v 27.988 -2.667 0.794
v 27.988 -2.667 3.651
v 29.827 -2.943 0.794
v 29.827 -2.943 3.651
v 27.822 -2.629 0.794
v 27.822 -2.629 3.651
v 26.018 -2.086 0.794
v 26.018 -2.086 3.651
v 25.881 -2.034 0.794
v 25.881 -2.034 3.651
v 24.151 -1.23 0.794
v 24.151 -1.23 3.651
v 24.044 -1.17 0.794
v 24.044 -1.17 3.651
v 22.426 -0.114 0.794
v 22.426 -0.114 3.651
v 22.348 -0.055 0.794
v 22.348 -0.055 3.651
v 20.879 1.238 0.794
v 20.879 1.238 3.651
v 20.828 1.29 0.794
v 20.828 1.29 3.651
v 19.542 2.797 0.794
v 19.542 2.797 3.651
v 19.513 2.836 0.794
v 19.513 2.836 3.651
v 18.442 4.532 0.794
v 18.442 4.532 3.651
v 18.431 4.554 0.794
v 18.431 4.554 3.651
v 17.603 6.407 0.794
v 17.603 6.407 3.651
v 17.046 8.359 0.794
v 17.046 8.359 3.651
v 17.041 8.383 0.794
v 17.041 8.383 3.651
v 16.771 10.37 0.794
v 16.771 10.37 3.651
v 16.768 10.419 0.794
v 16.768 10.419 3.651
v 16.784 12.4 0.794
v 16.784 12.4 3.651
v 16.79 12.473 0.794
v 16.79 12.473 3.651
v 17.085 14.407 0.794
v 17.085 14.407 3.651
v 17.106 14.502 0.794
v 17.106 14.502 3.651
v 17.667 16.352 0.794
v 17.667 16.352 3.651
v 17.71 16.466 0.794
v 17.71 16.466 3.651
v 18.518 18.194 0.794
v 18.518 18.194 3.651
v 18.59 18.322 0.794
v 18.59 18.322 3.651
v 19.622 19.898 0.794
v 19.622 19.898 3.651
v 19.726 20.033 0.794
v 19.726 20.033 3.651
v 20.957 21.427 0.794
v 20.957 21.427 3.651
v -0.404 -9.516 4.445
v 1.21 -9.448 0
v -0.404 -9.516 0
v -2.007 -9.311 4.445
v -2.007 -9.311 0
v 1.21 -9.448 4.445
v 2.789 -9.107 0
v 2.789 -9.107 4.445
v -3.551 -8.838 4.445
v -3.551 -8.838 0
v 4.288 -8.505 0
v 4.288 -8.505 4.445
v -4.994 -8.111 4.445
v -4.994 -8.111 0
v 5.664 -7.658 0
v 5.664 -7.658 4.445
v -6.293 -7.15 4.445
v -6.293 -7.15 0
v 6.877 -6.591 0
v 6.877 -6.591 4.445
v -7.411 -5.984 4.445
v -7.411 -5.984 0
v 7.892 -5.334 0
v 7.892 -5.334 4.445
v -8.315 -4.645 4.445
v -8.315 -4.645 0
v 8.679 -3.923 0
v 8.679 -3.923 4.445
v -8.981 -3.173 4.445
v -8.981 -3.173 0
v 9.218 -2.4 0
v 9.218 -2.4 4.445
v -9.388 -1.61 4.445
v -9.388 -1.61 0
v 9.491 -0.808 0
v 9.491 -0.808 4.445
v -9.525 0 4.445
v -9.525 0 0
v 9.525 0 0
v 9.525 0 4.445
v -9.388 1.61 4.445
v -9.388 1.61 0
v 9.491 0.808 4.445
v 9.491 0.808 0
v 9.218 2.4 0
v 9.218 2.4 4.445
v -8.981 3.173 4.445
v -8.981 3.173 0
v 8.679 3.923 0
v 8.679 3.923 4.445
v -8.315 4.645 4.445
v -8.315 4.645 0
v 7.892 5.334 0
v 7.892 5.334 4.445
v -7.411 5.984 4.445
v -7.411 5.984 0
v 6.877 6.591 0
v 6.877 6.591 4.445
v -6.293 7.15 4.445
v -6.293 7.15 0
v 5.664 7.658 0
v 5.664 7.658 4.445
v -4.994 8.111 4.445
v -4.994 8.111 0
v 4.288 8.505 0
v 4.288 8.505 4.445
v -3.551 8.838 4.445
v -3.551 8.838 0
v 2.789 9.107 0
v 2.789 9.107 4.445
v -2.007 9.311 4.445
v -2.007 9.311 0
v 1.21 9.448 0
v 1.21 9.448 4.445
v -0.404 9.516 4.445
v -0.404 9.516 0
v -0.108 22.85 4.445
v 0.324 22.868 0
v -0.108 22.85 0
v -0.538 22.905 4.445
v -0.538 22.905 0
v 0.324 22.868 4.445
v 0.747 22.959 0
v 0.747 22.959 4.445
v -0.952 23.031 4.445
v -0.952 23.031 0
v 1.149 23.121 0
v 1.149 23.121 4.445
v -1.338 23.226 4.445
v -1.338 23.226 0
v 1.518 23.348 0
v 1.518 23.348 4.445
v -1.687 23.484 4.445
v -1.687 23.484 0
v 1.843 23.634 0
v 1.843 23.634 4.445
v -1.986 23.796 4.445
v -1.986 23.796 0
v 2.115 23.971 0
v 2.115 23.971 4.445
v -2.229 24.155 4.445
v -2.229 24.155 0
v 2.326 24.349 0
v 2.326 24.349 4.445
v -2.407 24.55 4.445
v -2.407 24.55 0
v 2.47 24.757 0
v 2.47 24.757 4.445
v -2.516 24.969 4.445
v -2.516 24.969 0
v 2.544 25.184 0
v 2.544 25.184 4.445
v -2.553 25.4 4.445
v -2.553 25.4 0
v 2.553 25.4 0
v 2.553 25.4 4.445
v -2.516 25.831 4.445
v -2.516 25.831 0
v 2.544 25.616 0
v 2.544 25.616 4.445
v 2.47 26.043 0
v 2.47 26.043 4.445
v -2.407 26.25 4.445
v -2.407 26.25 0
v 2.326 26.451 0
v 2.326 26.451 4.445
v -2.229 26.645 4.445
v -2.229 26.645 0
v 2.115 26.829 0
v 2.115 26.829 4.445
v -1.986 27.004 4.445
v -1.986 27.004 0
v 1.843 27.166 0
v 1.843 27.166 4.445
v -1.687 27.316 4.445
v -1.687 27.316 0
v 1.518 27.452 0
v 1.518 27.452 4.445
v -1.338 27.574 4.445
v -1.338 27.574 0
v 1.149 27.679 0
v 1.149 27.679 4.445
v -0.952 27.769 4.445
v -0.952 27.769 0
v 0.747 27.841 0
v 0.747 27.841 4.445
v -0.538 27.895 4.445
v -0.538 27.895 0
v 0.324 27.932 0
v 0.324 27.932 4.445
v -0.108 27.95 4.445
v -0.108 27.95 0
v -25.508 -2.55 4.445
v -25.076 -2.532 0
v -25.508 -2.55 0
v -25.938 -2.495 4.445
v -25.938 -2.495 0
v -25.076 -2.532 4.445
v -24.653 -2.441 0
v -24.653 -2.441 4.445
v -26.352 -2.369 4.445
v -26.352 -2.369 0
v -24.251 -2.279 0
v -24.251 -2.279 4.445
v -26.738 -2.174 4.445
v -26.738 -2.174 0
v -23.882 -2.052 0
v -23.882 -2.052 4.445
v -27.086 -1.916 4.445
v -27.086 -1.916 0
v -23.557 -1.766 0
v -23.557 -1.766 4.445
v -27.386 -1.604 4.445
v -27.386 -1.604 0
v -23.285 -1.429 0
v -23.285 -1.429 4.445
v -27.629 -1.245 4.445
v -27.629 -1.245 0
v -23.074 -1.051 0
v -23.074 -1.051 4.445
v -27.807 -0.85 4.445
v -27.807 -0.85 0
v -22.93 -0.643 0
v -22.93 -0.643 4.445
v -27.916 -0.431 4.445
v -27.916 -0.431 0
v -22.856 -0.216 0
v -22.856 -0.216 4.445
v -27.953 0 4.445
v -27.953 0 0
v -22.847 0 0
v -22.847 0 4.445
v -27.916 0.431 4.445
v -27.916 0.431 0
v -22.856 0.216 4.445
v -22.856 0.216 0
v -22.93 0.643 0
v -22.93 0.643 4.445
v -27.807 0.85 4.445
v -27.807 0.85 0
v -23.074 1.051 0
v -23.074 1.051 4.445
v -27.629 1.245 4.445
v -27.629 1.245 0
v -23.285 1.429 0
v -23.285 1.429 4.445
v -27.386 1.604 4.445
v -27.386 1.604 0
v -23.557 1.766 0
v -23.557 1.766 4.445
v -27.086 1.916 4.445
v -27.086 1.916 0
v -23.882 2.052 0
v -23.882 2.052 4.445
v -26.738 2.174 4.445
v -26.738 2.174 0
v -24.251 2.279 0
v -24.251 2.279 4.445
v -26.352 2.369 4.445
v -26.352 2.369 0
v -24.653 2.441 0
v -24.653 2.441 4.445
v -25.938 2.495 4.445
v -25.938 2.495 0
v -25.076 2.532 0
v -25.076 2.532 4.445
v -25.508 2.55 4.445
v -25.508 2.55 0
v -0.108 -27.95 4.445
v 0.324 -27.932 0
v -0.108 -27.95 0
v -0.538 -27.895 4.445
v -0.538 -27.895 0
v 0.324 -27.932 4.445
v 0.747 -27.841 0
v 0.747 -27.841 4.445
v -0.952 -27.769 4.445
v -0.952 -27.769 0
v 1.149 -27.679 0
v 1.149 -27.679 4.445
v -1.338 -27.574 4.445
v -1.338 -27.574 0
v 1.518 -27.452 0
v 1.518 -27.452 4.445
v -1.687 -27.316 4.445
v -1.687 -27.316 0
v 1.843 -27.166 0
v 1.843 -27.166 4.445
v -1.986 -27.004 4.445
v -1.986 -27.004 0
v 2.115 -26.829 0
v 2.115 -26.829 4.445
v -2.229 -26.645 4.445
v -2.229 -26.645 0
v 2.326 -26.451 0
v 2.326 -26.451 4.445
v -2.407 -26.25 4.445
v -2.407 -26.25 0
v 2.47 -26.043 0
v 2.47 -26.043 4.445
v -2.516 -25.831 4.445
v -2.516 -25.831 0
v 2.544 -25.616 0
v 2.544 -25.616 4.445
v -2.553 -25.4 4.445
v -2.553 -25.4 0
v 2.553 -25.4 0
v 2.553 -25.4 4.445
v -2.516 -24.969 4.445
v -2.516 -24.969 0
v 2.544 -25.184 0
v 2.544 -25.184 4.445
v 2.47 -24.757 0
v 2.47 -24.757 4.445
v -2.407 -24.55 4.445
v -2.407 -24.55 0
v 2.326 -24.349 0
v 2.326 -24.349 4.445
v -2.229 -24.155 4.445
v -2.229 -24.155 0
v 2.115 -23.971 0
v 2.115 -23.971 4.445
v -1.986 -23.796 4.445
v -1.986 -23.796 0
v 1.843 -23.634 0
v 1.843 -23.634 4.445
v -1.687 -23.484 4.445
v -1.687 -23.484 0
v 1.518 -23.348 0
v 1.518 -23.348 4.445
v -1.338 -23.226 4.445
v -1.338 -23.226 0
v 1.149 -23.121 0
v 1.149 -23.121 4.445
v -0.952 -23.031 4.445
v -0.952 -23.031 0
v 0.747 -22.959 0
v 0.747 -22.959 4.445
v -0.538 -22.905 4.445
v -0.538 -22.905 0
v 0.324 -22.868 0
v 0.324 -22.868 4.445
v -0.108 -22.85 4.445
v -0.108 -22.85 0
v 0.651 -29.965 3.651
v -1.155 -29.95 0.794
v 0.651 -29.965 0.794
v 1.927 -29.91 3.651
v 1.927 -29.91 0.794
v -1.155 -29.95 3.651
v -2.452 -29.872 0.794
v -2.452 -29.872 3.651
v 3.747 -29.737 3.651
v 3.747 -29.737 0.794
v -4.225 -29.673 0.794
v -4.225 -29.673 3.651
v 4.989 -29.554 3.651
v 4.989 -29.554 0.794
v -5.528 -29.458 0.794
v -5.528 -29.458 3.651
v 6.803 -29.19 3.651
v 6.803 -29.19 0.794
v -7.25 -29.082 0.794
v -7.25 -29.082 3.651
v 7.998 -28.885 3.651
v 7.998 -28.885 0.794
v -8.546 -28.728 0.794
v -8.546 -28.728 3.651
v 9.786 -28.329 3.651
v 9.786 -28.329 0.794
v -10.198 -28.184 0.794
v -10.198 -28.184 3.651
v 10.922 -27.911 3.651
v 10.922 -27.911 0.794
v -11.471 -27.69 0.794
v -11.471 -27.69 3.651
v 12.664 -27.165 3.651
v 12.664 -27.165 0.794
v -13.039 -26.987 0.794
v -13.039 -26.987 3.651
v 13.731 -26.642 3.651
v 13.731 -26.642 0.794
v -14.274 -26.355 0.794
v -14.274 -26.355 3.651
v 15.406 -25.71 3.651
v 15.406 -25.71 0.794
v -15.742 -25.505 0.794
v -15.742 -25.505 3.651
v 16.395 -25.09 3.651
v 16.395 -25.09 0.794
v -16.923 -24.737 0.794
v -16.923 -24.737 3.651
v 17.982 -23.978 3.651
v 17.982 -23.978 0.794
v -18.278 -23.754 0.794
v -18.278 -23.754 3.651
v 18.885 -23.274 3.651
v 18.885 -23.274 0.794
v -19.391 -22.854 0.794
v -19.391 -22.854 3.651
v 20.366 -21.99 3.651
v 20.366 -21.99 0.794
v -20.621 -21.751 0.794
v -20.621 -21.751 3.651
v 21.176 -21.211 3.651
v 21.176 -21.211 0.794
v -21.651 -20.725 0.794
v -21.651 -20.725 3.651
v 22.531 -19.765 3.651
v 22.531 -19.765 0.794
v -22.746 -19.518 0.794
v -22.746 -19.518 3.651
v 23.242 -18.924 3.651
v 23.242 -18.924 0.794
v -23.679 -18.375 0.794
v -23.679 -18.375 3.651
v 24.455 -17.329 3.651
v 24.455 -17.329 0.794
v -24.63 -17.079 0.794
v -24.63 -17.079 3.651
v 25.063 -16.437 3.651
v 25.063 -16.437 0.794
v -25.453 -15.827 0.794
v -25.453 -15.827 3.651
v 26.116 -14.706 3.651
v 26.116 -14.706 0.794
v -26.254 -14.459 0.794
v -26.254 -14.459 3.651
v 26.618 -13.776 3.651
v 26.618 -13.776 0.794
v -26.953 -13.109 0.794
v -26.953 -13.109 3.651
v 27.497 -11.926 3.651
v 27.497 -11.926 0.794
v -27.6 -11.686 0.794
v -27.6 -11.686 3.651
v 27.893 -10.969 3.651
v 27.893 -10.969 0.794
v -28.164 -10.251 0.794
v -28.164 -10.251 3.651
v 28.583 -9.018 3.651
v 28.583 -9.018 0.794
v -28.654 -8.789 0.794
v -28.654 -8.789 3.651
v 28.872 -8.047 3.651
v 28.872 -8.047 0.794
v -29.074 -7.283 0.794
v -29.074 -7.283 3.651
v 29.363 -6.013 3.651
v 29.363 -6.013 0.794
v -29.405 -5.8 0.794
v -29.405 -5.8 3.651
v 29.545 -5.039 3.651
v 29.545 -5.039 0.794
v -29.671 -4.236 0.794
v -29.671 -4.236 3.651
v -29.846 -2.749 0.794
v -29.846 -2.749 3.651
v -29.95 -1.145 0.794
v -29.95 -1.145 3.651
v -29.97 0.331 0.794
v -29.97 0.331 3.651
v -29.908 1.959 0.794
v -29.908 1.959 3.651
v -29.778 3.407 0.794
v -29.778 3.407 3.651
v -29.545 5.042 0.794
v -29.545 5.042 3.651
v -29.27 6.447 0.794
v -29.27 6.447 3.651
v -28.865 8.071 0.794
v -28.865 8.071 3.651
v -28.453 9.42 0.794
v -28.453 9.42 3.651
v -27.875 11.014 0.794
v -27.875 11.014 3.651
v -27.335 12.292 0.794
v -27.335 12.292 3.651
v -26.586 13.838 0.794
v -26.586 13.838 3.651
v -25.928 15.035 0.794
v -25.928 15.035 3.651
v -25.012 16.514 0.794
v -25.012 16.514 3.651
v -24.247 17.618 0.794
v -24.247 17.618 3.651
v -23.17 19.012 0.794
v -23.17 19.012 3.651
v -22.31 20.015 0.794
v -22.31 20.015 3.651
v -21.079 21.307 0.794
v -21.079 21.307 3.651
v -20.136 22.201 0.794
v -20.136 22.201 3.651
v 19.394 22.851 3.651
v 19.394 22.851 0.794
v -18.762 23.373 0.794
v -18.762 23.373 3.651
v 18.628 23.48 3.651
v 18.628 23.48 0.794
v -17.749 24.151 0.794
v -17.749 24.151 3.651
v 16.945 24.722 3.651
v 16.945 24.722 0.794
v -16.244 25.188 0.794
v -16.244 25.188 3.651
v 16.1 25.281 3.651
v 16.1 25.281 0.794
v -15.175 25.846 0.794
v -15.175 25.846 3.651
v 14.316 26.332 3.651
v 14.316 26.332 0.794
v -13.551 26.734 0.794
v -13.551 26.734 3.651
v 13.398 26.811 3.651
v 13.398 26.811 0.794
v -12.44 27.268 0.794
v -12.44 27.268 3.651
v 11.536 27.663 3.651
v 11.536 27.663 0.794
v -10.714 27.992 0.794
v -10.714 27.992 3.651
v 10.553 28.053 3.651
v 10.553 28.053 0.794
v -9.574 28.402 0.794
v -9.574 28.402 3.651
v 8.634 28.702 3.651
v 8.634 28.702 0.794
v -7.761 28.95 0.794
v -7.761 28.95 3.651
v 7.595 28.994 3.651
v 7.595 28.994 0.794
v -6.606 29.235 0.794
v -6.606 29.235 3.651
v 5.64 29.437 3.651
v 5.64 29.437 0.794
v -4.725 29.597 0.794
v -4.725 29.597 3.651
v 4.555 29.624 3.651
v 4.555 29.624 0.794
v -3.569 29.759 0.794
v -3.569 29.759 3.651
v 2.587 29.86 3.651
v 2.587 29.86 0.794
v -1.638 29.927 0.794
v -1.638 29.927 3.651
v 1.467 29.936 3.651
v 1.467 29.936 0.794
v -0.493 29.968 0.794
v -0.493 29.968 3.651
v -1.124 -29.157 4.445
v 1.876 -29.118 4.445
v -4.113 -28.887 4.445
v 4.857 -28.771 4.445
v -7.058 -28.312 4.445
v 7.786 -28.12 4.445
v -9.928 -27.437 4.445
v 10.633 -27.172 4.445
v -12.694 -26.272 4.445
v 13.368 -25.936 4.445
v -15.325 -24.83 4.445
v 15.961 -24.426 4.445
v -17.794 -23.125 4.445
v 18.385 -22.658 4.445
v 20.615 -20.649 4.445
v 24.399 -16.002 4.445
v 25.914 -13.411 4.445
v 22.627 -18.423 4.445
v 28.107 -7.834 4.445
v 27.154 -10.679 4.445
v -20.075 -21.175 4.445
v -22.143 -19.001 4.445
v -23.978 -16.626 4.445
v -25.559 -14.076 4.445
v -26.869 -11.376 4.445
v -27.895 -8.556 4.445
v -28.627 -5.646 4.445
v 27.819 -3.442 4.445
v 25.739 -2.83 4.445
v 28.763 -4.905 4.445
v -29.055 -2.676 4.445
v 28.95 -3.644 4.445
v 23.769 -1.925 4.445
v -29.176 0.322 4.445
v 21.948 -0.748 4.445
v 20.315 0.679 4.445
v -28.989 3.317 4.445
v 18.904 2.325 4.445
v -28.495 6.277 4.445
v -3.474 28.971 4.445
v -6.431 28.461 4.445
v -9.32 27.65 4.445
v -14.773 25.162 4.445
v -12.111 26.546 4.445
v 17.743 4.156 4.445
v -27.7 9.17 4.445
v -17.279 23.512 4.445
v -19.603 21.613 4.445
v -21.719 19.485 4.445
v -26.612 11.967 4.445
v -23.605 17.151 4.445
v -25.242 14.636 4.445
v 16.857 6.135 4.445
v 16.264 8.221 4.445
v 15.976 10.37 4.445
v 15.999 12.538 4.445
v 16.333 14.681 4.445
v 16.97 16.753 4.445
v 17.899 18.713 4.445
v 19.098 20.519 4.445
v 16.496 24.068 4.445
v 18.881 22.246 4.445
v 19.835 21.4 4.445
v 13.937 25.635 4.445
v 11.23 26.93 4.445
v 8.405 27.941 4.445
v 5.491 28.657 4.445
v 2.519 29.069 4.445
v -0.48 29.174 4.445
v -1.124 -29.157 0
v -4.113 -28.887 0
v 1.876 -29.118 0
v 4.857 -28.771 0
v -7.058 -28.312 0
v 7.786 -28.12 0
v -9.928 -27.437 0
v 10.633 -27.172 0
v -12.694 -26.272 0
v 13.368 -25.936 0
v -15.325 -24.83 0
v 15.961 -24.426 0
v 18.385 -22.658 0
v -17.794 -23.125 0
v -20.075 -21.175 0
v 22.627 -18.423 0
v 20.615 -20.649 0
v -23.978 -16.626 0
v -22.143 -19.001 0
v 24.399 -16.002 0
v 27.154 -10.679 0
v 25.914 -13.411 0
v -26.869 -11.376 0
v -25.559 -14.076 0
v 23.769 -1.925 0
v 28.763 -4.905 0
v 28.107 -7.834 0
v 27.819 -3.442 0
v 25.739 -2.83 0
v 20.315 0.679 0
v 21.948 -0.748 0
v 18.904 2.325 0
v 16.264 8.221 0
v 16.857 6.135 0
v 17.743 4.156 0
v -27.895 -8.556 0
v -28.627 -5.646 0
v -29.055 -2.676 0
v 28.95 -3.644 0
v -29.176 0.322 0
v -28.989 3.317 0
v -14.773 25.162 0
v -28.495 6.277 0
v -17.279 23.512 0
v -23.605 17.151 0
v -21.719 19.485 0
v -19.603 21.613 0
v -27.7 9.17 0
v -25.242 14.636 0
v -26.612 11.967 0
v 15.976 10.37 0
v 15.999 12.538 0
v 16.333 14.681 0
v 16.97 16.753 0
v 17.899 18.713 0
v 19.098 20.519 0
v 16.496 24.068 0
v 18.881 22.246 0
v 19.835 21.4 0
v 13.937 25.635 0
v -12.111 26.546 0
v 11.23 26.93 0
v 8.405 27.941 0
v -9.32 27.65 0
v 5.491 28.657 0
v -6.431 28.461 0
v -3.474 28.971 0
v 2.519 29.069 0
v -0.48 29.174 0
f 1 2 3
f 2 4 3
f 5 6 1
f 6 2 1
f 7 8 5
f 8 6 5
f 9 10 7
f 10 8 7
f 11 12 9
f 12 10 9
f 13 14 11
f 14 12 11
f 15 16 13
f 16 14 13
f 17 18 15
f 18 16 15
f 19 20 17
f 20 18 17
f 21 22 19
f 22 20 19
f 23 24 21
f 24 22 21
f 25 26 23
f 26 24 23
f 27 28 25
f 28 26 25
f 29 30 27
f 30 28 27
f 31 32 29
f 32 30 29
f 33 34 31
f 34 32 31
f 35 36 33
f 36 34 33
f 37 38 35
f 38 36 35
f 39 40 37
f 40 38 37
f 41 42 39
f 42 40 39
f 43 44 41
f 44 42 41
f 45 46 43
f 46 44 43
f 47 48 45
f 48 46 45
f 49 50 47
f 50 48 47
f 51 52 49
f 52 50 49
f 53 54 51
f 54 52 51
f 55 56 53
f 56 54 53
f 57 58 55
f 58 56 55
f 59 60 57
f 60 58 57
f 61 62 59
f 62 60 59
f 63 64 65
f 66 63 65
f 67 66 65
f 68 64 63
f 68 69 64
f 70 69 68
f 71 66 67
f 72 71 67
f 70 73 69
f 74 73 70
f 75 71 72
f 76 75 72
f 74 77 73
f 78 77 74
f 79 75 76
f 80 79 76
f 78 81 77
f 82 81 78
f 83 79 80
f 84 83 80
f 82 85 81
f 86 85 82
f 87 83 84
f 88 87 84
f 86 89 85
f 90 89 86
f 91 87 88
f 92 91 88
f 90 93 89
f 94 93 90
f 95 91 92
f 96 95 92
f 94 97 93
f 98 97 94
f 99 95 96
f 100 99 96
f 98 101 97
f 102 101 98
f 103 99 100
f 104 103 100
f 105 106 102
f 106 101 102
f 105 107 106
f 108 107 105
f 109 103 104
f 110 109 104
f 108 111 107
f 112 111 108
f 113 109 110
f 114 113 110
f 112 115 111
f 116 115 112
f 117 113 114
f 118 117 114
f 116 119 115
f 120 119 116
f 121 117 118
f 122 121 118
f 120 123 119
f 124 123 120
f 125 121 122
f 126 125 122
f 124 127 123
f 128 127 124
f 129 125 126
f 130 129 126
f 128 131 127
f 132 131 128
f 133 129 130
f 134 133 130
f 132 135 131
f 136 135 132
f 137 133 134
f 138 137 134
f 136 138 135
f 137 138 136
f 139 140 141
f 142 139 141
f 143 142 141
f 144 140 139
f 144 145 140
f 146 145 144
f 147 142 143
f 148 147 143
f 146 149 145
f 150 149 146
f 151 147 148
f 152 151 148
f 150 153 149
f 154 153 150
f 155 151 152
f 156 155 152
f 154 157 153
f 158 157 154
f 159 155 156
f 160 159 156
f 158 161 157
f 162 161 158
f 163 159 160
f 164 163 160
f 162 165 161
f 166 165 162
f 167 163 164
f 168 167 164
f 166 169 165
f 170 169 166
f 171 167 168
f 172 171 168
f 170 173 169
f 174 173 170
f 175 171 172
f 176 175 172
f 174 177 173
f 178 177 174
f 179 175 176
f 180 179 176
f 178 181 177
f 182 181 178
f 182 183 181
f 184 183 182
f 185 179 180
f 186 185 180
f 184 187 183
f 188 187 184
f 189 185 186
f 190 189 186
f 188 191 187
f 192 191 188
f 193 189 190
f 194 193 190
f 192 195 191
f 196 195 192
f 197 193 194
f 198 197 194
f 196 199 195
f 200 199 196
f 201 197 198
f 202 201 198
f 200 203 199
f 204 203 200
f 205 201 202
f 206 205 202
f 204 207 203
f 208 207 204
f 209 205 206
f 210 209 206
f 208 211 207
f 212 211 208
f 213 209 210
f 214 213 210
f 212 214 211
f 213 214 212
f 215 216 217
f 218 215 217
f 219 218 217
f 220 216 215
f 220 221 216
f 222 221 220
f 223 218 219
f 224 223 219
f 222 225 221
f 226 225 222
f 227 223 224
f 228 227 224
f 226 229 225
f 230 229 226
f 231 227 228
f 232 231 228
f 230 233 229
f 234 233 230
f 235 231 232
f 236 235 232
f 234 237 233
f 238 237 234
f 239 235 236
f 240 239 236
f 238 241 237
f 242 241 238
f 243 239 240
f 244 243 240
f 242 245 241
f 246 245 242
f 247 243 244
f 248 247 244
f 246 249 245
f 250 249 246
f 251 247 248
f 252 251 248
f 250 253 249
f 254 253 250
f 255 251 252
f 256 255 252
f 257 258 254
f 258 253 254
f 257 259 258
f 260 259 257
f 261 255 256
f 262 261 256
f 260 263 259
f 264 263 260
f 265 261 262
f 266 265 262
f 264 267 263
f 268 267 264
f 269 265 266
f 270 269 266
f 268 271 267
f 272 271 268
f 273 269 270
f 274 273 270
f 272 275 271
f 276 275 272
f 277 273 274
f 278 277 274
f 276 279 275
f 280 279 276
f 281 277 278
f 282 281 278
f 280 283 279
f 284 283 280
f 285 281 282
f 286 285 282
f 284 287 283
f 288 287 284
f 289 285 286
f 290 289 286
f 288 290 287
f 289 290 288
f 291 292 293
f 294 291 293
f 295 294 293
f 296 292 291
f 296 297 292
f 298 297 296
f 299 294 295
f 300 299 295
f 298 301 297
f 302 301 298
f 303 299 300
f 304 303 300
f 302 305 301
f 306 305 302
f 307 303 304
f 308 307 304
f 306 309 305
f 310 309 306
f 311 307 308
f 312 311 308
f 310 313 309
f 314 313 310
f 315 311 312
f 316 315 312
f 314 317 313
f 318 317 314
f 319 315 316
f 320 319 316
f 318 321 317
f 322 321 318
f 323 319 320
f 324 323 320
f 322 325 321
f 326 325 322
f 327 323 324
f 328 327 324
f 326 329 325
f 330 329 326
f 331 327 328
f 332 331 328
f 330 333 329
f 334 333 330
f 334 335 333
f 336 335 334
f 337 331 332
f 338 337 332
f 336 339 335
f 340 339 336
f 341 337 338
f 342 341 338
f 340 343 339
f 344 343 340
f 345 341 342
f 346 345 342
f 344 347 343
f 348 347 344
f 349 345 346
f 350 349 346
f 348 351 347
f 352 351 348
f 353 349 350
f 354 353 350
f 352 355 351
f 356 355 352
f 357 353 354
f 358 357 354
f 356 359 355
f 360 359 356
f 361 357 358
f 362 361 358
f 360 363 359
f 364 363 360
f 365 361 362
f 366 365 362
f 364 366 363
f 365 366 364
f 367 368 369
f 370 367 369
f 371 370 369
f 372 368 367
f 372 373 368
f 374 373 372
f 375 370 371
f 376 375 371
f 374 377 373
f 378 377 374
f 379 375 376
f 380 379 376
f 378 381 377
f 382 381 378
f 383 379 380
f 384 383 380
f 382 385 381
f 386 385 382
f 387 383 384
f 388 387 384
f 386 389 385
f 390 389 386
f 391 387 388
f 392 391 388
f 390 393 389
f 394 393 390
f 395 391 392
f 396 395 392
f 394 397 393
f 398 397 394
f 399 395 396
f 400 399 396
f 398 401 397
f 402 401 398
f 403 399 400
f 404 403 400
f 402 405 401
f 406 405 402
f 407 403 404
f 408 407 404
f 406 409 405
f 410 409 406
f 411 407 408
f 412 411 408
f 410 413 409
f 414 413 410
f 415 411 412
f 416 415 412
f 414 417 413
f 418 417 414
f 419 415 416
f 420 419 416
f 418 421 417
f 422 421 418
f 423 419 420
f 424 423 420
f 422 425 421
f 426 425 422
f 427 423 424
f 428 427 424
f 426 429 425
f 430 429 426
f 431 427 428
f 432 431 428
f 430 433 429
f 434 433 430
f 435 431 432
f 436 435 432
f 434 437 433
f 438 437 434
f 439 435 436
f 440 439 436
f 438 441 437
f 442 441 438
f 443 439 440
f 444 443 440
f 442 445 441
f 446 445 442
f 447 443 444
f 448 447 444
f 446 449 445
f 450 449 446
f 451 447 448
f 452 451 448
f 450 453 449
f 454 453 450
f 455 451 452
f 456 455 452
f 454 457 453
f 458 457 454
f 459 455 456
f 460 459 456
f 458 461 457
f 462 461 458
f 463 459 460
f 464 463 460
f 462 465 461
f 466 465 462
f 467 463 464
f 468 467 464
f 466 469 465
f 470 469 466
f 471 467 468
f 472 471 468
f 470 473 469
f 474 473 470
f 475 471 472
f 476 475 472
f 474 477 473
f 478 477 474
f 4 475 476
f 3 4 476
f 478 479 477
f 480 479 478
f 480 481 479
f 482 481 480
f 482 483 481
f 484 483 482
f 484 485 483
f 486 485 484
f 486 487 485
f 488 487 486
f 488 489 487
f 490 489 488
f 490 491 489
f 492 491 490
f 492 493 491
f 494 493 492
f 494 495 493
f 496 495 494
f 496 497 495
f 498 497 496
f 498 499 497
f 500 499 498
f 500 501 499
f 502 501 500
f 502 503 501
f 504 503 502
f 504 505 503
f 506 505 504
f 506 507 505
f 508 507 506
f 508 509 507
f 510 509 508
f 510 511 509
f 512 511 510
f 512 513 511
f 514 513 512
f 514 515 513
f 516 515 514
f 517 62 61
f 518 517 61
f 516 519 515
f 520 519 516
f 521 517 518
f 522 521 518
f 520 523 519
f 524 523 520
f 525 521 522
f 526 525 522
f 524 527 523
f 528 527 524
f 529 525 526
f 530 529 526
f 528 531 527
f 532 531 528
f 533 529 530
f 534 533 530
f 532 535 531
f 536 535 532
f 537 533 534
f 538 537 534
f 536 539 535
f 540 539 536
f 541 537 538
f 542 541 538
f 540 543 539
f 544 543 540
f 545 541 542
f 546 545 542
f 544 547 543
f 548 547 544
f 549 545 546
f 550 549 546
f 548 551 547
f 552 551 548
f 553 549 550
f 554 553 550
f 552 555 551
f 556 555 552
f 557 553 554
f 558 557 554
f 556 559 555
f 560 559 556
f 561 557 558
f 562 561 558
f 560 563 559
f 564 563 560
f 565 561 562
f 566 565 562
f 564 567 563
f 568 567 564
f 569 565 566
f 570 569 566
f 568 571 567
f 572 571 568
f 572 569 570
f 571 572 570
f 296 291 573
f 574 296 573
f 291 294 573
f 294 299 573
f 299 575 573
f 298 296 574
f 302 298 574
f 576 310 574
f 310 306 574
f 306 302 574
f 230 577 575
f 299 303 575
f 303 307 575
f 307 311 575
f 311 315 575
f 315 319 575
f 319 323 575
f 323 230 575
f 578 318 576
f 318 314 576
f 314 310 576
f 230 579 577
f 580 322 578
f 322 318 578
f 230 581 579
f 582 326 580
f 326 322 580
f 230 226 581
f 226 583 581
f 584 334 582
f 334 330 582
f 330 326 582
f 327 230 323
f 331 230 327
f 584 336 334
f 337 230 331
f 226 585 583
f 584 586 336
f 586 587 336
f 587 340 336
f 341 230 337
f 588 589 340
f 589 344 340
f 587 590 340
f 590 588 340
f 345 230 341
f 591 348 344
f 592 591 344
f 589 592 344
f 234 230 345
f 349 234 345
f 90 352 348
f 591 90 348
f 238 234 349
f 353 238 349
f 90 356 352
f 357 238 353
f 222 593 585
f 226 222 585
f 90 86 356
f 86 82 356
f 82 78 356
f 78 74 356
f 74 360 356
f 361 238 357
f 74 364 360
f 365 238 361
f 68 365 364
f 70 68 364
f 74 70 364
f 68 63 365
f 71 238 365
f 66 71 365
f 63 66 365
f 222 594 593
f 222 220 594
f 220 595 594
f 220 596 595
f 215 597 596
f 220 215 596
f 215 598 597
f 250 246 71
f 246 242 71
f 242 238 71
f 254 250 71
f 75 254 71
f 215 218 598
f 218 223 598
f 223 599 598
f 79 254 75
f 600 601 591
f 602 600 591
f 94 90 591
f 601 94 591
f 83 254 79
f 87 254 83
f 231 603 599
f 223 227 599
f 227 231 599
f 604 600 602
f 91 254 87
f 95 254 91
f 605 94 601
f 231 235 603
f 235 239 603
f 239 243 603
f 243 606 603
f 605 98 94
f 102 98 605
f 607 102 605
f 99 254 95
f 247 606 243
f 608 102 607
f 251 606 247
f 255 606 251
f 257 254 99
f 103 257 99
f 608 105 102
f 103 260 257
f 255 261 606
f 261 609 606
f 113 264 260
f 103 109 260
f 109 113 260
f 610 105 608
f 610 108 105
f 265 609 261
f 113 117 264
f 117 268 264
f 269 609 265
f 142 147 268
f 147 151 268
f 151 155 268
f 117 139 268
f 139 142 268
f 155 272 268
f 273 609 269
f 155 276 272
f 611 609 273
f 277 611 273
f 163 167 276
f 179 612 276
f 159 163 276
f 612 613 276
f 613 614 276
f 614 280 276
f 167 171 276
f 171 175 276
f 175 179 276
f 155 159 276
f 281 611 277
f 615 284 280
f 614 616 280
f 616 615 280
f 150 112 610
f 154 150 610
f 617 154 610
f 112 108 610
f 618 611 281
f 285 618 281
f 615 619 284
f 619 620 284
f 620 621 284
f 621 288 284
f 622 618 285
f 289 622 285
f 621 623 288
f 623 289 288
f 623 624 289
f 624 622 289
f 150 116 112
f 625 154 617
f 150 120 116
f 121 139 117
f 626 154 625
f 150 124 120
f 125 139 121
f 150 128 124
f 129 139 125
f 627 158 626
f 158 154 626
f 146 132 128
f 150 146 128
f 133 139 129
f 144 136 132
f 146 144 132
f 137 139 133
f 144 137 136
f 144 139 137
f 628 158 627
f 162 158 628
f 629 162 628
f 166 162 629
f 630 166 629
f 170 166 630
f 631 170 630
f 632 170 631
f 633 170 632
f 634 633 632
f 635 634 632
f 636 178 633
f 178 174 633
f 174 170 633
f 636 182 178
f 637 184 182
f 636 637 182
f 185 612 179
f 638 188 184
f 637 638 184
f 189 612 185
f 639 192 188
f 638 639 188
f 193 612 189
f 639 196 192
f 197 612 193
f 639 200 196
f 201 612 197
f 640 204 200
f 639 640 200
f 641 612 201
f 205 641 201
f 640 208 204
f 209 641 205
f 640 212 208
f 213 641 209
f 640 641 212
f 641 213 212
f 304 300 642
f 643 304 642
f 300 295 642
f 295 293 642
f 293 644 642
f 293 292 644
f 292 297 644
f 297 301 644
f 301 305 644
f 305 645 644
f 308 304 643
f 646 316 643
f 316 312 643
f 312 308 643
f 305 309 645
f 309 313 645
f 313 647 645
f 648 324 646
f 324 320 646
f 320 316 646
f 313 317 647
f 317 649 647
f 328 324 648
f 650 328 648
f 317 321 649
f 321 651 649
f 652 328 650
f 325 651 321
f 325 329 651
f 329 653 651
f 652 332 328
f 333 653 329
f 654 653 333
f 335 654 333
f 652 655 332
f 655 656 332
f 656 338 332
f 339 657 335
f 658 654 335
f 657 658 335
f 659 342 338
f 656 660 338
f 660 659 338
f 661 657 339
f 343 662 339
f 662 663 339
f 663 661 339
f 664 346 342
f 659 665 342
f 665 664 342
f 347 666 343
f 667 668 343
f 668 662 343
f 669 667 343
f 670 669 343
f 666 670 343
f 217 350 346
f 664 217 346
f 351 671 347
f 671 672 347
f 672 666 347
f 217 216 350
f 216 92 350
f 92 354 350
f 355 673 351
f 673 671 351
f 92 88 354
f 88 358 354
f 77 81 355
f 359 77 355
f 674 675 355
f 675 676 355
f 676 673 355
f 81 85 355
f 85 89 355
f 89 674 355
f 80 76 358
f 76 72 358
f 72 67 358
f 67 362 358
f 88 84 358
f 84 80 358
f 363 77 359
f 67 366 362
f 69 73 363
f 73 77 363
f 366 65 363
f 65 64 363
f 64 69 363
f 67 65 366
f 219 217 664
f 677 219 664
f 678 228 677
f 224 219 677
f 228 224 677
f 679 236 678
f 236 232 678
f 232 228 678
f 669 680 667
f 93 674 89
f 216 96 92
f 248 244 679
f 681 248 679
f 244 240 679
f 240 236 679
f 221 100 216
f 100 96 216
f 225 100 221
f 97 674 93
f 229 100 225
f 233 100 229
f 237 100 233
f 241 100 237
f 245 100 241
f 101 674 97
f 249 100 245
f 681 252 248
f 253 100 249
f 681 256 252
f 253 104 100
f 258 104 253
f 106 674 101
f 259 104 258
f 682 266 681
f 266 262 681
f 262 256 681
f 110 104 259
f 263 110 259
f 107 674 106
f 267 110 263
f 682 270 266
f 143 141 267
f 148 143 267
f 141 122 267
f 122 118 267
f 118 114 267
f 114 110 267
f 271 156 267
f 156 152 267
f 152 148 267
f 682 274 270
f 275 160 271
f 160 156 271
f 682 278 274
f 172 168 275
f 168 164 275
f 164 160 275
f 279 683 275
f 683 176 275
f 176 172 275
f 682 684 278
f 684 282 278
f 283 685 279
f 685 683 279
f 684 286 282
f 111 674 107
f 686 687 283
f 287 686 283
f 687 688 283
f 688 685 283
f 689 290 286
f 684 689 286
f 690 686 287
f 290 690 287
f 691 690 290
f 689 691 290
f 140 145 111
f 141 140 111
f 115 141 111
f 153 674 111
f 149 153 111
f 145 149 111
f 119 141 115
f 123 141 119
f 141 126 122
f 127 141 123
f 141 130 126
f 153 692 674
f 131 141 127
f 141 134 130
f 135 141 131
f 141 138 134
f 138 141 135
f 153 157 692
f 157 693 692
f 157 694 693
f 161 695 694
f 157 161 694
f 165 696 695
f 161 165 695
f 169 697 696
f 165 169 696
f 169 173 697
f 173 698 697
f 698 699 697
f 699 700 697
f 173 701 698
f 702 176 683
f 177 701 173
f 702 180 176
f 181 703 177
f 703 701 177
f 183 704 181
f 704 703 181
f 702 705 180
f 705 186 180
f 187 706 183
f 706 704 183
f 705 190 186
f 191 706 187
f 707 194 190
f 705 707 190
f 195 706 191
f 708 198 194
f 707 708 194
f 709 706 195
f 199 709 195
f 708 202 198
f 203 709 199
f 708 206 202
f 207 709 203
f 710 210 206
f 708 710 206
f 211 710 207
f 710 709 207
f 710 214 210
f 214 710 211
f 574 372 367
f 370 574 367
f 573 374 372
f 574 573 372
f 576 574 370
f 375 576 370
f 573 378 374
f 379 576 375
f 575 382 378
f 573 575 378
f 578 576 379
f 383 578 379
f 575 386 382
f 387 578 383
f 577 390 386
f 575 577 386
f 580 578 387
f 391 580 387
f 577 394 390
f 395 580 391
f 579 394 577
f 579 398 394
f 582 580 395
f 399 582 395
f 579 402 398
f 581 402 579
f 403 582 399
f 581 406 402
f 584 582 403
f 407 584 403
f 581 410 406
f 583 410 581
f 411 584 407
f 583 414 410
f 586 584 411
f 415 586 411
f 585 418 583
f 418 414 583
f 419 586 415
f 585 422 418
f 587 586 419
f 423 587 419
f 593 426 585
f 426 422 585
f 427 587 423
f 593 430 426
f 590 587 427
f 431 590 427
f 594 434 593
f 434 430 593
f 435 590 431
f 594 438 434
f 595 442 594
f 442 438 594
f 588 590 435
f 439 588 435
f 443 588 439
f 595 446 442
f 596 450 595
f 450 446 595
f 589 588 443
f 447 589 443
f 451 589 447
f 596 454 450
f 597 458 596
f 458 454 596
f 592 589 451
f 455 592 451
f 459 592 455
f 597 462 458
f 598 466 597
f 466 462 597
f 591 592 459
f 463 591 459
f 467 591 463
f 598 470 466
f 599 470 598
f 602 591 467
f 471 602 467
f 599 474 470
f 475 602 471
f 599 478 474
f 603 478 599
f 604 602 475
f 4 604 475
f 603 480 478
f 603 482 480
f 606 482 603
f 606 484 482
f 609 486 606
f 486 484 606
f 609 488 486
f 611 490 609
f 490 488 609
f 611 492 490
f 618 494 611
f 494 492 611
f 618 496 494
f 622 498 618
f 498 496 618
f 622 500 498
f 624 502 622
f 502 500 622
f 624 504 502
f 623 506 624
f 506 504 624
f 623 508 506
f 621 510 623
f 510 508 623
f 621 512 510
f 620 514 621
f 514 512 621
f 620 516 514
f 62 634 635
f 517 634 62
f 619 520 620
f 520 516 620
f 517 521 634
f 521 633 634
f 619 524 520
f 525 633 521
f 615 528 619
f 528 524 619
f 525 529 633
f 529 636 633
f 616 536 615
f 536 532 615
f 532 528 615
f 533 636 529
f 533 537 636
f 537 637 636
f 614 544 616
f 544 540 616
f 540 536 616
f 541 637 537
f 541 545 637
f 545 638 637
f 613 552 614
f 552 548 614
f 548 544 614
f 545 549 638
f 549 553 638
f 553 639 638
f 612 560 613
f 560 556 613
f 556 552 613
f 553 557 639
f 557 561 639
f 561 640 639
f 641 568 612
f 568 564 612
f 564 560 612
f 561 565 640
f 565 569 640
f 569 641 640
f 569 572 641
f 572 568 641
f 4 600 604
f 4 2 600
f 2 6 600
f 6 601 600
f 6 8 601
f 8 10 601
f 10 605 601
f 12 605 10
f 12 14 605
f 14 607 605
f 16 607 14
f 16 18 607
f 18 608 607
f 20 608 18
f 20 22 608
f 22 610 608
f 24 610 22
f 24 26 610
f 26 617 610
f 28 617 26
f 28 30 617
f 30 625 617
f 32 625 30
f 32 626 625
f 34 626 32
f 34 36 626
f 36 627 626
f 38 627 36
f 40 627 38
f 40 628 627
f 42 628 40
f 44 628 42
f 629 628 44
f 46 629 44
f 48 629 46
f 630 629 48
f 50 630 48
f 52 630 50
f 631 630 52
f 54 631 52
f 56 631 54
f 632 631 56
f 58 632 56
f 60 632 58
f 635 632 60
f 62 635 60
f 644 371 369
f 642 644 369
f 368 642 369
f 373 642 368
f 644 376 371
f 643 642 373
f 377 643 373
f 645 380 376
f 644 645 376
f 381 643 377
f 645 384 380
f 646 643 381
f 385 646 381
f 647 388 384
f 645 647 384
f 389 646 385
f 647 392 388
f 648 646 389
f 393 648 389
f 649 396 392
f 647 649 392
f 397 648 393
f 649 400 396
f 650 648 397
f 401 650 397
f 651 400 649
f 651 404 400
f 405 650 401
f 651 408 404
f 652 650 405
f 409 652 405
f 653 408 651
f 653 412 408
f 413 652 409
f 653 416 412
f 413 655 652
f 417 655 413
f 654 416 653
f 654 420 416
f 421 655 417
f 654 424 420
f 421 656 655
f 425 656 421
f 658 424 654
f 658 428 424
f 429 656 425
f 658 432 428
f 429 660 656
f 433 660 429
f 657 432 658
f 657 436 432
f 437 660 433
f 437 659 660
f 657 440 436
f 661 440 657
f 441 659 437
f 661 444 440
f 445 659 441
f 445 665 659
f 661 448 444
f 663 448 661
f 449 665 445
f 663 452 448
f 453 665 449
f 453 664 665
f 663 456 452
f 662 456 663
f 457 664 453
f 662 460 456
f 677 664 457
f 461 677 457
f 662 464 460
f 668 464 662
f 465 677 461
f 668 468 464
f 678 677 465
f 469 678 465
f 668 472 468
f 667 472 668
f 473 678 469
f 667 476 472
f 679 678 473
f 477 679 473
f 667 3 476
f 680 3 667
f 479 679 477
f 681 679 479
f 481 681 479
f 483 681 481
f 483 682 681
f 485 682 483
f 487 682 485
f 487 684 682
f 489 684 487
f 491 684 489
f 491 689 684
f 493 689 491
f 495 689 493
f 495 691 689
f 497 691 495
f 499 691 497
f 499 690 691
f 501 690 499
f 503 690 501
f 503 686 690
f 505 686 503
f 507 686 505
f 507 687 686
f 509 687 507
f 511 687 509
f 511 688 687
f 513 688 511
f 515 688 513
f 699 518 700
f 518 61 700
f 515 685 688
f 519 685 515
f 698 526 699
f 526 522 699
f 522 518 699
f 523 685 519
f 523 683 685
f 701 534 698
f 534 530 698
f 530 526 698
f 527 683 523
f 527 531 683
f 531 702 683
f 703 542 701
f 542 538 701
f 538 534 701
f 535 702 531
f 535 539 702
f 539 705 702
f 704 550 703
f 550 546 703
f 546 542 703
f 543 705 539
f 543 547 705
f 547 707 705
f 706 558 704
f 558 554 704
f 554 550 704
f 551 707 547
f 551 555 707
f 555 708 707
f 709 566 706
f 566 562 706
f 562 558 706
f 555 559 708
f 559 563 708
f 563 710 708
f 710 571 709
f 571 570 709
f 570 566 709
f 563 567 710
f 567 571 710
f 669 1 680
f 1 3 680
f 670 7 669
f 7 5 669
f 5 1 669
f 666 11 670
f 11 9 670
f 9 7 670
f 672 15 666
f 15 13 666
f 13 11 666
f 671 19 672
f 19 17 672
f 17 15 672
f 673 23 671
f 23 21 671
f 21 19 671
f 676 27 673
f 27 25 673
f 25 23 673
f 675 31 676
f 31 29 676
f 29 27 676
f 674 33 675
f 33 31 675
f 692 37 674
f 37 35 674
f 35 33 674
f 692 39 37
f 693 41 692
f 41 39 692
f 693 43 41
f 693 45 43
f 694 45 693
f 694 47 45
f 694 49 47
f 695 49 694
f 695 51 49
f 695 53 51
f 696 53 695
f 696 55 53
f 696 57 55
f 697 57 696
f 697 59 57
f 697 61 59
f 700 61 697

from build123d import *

# Parameters (mm, degrees)
SKETCH1_R           = 2.5527
SKETCH1_R_2         = 9.525
BOSS_EXTRUDE1_DEPTH = 4.445
CHAMFER1_SIZE       = 0.79375
CHAMFER2_SIZE       = 0.79375


with BuildPart() as part:
    # Sketch1 → Boss-Extrude1 (new body)
    with BuildSketch(Plane.XY):
        with BuildLine():
            ThreePointArc((29.827123218, -2.94338318), (17.602792019, 6.406892335), (20.956931757, 21.427267566))
            ThreePointArc((20.956931757, 21.427267566), (-28.16446723, -10.251027736), (29.827123218, -2.94338318))
        make_face()
        with Locations((0, -25.4)):
            Circle(SKETCH1_R, mode=Mode.SUBTRACT)
        with Locations((-25.4, 0)):
            Circle(SKETCH1_R, mode=Mode.SUBTRACT)
        Circle(SKETCH1_R_2, mode=Mode.SUBTRACT)
        with Locations((0, 25.4)):
            Circle(SKETCH1_R, mode=Mode.SUBTRACT)
    extrude(amount=BOSS_EXTRUDE1_DEPTH)

    # Chamfer1
    chamfer1_edges = [part.edges().sort_by_distance(p)[0] for p in [
        (17.602792019, 6.406892335, 4.445),
        (-28.16446723, -10.251027736, 4.445),
    ]]
    chamfer(chamfer1_edges, length=CHAMFER1_SIZE)

    # Chamfer2
    chamfer2_edges = [part.edges().sort_by_distance(p)[0] for p in [
        (-28.16446723, -10.251027736, 0),
        (17.602792019, 6.406892335, 0),
    ]]
    chamfer(chamfer2_edges, length=CHAMFER2_SIZE)


solid = part.part
